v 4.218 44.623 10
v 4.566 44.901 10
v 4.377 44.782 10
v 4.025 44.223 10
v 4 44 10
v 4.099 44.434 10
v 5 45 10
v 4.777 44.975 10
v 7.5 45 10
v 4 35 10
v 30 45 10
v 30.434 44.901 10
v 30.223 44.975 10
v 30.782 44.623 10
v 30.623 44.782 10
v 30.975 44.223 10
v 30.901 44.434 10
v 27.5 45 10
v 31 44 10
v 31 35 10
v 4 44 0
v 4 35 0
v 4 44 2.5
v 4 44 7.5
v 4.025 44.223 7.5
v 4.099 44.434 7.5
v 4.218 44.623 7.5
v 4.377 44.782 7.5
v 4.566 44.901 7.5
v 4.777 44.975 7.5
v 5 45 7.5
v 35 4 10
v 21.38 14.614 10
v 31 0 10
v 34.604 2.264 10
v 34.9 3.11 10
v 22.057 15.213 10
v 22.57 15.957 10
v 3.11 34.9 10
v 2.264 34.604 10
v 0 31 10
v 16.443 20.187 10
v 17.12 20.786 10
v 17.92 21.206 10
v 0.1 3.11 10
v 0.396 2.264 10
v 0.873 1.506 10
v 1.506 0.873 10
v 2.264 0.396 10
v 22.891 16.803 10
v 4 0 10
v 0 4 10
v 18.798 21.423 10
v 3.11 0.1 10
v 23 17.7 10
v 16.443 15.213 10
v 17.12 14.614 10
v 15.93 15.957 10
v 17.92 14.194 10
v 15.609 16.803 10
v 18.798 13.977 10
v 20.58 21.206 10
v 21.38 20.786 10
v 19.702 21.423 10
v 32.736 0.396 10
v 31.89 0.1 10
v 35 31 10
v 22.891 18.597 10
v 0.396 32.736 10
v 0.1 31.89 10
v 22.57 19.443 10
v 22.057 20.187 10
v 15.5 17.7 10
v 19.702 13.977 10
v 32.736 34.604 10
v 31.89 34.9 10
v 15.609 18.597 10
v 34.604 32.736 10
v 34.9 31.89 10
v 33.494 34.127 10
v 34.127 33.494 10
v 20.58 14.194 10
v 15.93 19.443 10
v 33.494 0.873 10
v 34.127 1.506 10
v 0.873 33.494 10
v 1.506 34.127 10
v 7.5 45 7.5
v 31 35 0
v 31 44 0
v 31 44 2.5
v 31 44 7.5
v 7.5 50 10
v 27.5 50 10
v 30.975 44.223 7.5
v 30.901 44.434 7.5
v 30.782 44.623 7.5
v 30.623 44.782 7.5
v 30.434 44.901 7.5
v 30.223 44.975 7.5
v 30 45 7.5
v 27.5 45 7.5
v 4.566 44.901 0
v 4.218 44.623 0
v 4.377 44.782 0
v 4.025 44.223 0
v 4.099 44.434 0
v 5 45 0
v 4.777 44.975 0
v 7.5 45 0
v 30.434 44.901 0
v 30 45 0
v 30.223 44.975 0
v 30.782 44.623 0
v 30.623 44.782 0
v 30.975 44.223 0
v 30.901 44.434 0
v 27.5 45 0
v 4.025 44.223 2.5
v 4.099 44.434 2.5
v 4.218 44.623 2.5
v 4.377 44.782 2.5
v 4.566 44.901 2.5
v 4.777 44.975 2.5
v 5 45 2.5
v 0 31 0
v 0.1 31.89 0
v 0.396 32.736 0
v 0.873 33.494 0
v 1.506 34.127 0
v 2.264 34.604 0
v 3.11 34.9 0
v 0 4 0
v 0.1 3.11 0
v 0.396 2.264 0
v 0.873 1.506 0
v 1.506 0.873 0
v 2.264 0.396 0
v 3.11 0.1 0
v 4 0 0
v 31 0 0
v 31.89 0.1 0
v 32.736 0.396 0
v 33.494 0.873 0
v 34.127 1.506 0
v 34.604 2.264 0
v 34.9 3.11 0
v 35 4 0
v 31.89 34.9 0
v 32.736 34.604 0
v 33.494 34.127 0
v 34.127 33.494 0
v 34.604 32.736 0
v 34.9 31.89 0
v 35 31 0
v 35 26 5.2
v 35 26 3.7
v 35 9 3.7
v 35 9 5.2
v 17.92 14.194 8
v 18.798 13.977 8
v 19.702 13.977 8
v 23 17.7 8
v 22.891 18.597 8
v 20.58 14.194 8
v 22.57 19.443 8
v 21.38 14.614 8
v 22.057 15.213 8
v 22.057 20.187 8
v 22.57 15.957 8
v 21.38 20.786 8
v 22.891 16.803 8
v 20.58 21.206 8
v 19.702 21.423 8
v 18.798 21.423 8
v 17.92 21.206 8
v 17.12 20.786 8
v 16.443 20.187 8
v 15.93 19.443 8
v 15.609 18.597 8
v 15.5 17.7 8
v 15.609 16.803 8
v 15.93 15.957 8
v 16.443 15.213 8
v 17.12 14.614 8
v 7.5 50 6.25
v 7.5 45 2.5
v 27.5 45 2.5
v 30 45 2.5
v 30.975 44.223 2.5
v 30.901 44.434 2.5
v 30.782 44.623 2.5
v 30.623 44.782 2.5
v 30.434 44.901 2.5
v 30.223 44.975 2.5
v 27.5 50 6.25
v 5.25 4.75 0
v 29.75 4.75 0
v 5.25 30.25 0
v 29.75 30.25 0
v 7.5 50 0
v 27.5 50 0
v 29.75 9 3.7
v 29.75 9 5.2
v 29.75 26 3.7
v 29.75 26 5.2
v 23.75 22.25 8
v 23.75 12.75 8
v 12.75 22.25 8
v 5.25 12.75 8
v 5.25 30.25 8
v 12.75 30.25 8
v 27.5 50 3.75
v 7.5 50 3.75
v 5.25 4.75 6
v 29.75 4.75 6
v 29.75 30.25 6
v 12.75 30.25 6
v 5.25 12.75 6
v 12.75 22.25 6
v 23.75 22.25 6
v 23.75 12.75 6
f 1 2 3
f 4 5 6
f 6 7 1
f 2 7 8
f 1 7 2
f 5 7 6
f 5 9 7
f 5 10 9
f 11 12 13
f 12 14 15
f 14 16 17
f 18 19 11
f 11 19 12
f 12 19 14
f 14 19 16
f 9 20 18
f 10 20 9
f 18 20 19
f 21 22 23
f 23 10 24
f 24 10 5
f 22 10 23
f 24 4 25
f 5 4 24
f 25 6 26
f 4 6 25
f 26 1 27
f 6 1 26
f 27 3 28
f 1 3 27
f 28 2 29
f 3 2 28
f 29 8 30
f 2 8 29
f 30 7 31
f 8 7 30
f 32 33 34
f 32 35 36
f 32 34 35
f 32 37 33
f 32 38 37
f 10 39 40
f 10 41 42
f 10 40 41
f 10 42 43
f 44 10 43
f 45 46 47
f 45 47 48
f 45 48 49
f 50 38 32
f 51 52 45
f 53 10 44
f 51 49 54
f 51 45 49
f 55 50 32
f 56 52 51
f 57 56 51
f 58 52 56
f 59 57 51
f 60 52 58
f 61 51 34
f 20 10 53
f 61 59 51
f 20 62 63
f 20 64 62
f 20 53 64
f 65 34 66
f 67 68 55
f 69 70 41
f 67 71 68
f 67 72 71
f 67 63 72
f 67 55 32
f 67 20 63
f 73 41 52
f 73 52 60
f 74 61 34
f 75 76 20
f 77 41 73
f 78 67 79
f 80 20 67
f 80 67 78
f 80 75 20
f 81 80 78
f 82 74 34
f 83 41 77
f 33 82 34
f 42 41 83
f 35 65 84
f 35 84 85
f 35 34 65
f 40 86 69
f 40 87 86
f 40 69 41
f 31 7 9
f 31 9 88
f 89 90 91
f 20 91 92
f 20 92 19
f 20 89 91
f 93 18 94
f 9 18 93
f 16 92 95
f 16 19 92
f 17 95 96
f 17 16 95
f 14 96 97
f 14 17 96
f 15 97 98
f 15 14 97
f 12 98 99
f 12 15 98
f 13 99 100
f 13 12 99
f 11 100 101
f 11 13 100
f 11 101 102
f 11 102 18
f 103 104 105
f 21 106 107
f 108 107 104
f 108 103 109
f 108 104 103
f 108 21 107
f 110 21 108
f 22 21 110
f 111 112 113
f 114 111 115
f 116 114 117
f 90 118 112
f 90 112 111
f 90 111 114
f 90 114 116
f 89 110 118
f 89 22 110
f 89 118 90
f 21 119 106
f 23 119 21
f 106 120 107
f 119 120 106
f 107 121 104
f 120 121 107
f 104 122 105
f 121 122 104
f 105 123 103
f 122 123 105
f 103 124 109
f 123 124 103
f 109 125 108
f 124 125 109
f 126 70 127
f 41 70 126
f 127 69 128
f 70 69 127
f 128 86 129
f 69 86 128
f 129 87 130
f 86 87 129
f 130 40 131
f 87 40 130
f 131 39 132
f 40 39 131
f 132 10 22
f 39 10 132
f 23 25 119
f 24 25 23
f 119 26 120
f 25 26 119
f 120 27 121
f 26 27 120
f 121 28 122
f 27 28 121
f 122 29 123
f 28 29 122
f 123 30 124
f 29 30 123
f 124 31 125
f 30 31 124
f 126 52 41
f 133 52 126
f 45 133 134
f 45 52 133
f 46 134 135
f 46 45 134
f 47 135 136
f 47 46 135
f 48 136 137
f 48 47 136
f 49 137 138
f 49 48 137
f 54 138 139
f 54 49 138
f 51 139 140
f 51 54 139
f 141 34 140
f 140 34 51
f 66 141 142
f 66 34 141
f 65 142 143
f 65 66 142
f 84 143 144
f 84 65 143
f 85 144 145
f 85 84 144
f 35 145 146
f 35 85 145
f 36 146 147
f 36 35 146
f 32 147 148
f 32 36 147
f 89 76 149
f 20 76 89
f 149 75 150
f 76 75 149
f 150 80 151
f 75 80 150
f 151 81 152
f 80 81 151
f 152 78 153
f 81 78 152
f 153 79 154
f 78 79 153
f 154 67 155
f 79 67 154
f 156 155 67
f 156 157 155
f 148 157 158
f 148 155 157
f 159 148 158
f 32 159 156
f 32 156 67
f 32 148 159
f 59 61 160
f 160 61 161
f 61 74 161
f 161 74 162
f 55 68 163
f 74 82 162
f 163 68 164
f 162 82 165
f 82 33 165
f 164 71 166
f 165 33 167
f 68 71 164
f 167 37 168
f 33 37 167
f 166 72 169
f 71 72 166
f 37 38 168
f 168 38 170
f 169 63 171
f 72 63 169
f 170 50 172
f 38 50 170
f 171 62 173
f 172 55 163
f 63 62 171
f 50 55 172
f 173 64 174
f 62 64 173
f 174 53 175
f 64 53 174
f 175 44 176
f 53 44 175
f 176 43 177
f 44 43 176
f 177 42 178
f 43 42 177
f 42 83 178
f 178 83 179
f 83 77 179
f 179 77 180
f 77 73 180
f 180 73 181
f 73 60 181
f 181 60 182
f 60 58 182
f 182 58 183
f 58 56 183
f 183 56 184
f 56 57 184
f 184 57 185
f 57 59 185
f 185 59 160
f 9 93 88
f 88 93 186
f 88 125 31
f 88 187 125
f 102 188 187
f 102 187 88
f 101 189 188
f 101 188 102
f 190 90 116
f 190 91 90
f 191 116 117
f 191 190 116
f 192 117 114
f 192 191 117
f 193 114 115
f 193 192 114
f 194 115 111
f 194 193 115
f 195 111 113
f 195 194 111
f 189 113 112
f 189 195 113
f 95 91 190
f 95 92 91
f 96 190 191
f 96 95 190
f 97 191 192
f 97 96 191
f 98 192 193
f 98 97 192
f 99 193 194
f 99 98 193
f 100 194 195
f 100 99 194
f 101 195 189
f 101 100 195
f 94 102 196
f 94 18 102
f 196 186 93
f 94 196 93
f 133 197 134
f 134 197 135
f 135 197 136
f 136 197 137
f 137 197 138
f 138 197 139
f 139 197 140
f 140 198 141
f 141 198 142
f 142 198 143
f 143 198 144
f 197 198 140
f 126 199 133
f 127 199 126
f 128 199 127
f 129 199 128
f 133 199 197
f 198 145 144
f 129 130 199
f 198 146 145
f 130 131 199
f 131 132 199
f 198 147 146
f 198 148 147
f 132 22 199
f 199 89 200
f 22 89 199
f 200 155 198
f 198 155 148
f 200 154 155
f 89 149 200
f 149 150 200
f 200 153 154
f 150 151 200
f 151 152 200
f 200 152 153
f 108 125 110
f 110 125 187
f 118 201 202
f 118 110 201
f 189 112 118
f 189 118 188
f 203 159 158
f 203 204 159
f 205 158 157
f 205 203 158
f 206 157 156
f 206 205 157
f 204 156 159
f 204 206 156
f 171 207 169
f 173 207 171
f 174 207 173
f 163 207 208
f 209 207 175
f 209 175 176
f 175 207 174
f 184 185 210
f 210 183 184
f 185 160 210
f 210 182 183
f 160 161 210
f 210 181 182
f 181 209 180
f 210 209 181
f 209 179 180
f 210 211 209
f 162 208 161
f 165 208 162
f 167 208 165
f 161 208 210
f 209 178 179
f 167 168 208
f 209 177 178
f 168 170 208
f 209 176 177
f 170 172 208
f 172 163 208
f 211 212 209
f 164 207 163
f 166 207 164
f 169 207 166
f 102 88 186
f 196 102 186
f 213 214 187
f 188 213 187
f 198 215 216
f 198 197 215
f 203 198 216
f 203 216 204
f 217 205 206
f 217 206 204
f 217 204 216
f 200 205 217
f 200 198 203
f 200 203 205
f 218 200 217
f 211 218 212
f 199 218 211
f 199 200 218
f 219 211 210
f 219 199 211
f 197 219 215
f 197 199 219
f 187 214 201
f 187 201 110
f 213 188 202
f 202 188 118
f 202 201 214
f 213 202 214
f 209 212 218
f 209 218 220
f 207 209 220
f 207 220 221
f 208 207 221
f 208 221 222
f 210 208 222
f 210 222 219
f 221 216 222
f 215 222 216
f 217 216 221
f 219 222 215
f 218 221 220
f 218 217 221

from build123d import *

# Parameters (mm, degrees)
BOX_W           = 35
BOX_H           = 35
BOX_DEPTH       = 10
SKETCH_W        = 24.5
SKETCH_H        = 25.5
POCKET_DEPTH    = 8
SKETCH001_R     = 3.75
POCKET001_DEPTH = 2
PAD_DEPTH       = 2
SKETCH003_W     = 17
SKETCH003_H     = 1.5
POCKET002_DEPTH = 5.251
FILLET_R        = 4
FILLET_FACE7_W  = 27
FILLET_FACE7_H  = 10
PAD001_DEPTH    = 10
PAD001_FACE19_W = 27
PAD001_FACE19_H = 10
PAD002_DEPTH    = 5
POCKET003_DEPTH = 31.001
POCKET004_DEPTH = 3.5
POCKET005_DEPTH = 3.5
FILLET001_R     = 1


with BuildPart() as part:
    # Box → Box (new body)
    with BuildSketch(Plane.XY):
        with Locations((17.5, 17.5)):
            Rectangle(BOX_W, BOX_H)
    extrude(amount=BOX_DEPTH)

    # Sketch (on Face5 of BaseFeature) → Pocket (cut)
    with BuildSketch(Plane(origin=(0, 0, 0), x_dir=(1, 0, 0), z_dir=(0, 0, -1))):
        with Locations((17.5, -17.5)):
            Rectangle(SKETCH_W, SKETCH_H)
    extrude(amount=-POCKET_DEPTH, mode=Mode.SUBTRACT)

    # Sketch001 (on Face3 of Pocket) → Pocket001 (cut)
    with BuildSketch(Plane.XY.offset(10)):
        with Locations((19.25, 17.7)):
            Circle(SKETCH001_R)
    extrude(amount=-POCKET001_DEPTH, mode=Mode.SUBTRACT)

    # Sketch002 (on Face12 of Pocket001) → Pad (join)
    with BuildSketch(Plane(origin=(0, 0, 8), x_dir=(1, 0, 0), z_dir=(0, 0, -1))):
        Polygon((12.75, -30.25), (29.75, -30.25), (29.75, -4.75), (5.25, -4.75), (5.25, -12.75), (23.75, -12.75), (23.75, -22.25), (12.75, -22.25), align=None)
    extrude(amount=PAD_DEPTH)

    # Sketch003 (on Face9 of Pad) → Pocket002 (cut, through all)
    with BuildSketch(Plane(origin=(29.75, 0, 0), x_dir=(0, -1, 0), z_dir=(-1, 0, 0))):
        with Locations((-17.5, 4.45)):
            Rectangle(SKETCH003_W, SKETCH003_H)
    extrude(amount=-POCKET002_DEPTH, mode=Mode.SUBTRACT)

    # Fillet
    fillet_edges = [part.edges().sort_by_distance(p)[0] for p in [
        (0, 0, 5),
        (35, 0, 5),
        (0, 35, 5),
        (35, 35, 5),
    ]]
    fillet(fillet_edges, radius=FILLET_R)

    # Fillet Face7 → Pad001 (add)
    with BuildSketch(Plane(origin=(17.5, 35, 5), x_dir=(1, 0, 0), z_dir=(0, 1, 0))):
        Rectangle(FILLET_FACE7_W, FILLET_FACE7_H)
    extrude(amount=PAD001_DEPTH)

    # Pad001 Face19 → Pad002 (add)
    with BuildSketch(Plane(origin=(17.5, 45, 5), x_dir=(1, 0, 0), z_dir=(0, 1, 0))):
        Rectangle(PAD001_FACE19_W, PAD001_FACE19_H)
    extrude(amount=PAD002_DEPTH)

    # Sketch004 (on Face30 of Pad002) → Pocket003 (cut, through all)
    with BuildSketch(Plane.YZ.offset(31)):
        Polygon((45, 2.5), (45, 7.5), (50, 6.25), (50, 3.75), align=None)
    extrude(amount=-POCKET003_DEPTH, mode=Mode.SUBTRACT)

    # Sketch005 (on Face32 of Pocket003) → Pocket004 (cut)
    with BuildSketch(Plane.YZ.offset(31)):
        Polygon((45, 0), (45, 2.5), (50, 3.75), (50, 0), align=None)
        Polygon((45, 7.5), (45, 10), (50, 10), (50, 6.25), align=None)
    extrude(amount=-POCKET004_DEPTH, mode=Mode.SUBTRACT)

    # Sketch006 (on Face28 of Pocket004) → Pocket005 (cut)
    with BuildSketch(Plane(origin=(4, 0, 0), x_dir=(0, -1, 0), z_dir=(-1, 0, 0))):
        Polygon((-45, 10), (-45, 7.5), (-50, 6.25), (-50, 10), align=None)
        Polygon((-50, 3.75), (-50, 0), (-45, 0), (-45, 2.5), align=None)
    extrude(amount=-POCKET005_DEPTH, mode=Mode.SUBTRACT)

    # Fillet001
    fillet001_edges = [part.edges().sort_by_distance(p)[0] for p in [
        (4, 45, 5),
        (4, 45, 1.25),
        (4, 45, 8.75),
        (31, 45, 1.25),
        (31, 45, 5),
        (31, 45, 8.75),
    ]]
    fillet(fillet001_edges, radius=FILLET001_R)


solid = part.part
